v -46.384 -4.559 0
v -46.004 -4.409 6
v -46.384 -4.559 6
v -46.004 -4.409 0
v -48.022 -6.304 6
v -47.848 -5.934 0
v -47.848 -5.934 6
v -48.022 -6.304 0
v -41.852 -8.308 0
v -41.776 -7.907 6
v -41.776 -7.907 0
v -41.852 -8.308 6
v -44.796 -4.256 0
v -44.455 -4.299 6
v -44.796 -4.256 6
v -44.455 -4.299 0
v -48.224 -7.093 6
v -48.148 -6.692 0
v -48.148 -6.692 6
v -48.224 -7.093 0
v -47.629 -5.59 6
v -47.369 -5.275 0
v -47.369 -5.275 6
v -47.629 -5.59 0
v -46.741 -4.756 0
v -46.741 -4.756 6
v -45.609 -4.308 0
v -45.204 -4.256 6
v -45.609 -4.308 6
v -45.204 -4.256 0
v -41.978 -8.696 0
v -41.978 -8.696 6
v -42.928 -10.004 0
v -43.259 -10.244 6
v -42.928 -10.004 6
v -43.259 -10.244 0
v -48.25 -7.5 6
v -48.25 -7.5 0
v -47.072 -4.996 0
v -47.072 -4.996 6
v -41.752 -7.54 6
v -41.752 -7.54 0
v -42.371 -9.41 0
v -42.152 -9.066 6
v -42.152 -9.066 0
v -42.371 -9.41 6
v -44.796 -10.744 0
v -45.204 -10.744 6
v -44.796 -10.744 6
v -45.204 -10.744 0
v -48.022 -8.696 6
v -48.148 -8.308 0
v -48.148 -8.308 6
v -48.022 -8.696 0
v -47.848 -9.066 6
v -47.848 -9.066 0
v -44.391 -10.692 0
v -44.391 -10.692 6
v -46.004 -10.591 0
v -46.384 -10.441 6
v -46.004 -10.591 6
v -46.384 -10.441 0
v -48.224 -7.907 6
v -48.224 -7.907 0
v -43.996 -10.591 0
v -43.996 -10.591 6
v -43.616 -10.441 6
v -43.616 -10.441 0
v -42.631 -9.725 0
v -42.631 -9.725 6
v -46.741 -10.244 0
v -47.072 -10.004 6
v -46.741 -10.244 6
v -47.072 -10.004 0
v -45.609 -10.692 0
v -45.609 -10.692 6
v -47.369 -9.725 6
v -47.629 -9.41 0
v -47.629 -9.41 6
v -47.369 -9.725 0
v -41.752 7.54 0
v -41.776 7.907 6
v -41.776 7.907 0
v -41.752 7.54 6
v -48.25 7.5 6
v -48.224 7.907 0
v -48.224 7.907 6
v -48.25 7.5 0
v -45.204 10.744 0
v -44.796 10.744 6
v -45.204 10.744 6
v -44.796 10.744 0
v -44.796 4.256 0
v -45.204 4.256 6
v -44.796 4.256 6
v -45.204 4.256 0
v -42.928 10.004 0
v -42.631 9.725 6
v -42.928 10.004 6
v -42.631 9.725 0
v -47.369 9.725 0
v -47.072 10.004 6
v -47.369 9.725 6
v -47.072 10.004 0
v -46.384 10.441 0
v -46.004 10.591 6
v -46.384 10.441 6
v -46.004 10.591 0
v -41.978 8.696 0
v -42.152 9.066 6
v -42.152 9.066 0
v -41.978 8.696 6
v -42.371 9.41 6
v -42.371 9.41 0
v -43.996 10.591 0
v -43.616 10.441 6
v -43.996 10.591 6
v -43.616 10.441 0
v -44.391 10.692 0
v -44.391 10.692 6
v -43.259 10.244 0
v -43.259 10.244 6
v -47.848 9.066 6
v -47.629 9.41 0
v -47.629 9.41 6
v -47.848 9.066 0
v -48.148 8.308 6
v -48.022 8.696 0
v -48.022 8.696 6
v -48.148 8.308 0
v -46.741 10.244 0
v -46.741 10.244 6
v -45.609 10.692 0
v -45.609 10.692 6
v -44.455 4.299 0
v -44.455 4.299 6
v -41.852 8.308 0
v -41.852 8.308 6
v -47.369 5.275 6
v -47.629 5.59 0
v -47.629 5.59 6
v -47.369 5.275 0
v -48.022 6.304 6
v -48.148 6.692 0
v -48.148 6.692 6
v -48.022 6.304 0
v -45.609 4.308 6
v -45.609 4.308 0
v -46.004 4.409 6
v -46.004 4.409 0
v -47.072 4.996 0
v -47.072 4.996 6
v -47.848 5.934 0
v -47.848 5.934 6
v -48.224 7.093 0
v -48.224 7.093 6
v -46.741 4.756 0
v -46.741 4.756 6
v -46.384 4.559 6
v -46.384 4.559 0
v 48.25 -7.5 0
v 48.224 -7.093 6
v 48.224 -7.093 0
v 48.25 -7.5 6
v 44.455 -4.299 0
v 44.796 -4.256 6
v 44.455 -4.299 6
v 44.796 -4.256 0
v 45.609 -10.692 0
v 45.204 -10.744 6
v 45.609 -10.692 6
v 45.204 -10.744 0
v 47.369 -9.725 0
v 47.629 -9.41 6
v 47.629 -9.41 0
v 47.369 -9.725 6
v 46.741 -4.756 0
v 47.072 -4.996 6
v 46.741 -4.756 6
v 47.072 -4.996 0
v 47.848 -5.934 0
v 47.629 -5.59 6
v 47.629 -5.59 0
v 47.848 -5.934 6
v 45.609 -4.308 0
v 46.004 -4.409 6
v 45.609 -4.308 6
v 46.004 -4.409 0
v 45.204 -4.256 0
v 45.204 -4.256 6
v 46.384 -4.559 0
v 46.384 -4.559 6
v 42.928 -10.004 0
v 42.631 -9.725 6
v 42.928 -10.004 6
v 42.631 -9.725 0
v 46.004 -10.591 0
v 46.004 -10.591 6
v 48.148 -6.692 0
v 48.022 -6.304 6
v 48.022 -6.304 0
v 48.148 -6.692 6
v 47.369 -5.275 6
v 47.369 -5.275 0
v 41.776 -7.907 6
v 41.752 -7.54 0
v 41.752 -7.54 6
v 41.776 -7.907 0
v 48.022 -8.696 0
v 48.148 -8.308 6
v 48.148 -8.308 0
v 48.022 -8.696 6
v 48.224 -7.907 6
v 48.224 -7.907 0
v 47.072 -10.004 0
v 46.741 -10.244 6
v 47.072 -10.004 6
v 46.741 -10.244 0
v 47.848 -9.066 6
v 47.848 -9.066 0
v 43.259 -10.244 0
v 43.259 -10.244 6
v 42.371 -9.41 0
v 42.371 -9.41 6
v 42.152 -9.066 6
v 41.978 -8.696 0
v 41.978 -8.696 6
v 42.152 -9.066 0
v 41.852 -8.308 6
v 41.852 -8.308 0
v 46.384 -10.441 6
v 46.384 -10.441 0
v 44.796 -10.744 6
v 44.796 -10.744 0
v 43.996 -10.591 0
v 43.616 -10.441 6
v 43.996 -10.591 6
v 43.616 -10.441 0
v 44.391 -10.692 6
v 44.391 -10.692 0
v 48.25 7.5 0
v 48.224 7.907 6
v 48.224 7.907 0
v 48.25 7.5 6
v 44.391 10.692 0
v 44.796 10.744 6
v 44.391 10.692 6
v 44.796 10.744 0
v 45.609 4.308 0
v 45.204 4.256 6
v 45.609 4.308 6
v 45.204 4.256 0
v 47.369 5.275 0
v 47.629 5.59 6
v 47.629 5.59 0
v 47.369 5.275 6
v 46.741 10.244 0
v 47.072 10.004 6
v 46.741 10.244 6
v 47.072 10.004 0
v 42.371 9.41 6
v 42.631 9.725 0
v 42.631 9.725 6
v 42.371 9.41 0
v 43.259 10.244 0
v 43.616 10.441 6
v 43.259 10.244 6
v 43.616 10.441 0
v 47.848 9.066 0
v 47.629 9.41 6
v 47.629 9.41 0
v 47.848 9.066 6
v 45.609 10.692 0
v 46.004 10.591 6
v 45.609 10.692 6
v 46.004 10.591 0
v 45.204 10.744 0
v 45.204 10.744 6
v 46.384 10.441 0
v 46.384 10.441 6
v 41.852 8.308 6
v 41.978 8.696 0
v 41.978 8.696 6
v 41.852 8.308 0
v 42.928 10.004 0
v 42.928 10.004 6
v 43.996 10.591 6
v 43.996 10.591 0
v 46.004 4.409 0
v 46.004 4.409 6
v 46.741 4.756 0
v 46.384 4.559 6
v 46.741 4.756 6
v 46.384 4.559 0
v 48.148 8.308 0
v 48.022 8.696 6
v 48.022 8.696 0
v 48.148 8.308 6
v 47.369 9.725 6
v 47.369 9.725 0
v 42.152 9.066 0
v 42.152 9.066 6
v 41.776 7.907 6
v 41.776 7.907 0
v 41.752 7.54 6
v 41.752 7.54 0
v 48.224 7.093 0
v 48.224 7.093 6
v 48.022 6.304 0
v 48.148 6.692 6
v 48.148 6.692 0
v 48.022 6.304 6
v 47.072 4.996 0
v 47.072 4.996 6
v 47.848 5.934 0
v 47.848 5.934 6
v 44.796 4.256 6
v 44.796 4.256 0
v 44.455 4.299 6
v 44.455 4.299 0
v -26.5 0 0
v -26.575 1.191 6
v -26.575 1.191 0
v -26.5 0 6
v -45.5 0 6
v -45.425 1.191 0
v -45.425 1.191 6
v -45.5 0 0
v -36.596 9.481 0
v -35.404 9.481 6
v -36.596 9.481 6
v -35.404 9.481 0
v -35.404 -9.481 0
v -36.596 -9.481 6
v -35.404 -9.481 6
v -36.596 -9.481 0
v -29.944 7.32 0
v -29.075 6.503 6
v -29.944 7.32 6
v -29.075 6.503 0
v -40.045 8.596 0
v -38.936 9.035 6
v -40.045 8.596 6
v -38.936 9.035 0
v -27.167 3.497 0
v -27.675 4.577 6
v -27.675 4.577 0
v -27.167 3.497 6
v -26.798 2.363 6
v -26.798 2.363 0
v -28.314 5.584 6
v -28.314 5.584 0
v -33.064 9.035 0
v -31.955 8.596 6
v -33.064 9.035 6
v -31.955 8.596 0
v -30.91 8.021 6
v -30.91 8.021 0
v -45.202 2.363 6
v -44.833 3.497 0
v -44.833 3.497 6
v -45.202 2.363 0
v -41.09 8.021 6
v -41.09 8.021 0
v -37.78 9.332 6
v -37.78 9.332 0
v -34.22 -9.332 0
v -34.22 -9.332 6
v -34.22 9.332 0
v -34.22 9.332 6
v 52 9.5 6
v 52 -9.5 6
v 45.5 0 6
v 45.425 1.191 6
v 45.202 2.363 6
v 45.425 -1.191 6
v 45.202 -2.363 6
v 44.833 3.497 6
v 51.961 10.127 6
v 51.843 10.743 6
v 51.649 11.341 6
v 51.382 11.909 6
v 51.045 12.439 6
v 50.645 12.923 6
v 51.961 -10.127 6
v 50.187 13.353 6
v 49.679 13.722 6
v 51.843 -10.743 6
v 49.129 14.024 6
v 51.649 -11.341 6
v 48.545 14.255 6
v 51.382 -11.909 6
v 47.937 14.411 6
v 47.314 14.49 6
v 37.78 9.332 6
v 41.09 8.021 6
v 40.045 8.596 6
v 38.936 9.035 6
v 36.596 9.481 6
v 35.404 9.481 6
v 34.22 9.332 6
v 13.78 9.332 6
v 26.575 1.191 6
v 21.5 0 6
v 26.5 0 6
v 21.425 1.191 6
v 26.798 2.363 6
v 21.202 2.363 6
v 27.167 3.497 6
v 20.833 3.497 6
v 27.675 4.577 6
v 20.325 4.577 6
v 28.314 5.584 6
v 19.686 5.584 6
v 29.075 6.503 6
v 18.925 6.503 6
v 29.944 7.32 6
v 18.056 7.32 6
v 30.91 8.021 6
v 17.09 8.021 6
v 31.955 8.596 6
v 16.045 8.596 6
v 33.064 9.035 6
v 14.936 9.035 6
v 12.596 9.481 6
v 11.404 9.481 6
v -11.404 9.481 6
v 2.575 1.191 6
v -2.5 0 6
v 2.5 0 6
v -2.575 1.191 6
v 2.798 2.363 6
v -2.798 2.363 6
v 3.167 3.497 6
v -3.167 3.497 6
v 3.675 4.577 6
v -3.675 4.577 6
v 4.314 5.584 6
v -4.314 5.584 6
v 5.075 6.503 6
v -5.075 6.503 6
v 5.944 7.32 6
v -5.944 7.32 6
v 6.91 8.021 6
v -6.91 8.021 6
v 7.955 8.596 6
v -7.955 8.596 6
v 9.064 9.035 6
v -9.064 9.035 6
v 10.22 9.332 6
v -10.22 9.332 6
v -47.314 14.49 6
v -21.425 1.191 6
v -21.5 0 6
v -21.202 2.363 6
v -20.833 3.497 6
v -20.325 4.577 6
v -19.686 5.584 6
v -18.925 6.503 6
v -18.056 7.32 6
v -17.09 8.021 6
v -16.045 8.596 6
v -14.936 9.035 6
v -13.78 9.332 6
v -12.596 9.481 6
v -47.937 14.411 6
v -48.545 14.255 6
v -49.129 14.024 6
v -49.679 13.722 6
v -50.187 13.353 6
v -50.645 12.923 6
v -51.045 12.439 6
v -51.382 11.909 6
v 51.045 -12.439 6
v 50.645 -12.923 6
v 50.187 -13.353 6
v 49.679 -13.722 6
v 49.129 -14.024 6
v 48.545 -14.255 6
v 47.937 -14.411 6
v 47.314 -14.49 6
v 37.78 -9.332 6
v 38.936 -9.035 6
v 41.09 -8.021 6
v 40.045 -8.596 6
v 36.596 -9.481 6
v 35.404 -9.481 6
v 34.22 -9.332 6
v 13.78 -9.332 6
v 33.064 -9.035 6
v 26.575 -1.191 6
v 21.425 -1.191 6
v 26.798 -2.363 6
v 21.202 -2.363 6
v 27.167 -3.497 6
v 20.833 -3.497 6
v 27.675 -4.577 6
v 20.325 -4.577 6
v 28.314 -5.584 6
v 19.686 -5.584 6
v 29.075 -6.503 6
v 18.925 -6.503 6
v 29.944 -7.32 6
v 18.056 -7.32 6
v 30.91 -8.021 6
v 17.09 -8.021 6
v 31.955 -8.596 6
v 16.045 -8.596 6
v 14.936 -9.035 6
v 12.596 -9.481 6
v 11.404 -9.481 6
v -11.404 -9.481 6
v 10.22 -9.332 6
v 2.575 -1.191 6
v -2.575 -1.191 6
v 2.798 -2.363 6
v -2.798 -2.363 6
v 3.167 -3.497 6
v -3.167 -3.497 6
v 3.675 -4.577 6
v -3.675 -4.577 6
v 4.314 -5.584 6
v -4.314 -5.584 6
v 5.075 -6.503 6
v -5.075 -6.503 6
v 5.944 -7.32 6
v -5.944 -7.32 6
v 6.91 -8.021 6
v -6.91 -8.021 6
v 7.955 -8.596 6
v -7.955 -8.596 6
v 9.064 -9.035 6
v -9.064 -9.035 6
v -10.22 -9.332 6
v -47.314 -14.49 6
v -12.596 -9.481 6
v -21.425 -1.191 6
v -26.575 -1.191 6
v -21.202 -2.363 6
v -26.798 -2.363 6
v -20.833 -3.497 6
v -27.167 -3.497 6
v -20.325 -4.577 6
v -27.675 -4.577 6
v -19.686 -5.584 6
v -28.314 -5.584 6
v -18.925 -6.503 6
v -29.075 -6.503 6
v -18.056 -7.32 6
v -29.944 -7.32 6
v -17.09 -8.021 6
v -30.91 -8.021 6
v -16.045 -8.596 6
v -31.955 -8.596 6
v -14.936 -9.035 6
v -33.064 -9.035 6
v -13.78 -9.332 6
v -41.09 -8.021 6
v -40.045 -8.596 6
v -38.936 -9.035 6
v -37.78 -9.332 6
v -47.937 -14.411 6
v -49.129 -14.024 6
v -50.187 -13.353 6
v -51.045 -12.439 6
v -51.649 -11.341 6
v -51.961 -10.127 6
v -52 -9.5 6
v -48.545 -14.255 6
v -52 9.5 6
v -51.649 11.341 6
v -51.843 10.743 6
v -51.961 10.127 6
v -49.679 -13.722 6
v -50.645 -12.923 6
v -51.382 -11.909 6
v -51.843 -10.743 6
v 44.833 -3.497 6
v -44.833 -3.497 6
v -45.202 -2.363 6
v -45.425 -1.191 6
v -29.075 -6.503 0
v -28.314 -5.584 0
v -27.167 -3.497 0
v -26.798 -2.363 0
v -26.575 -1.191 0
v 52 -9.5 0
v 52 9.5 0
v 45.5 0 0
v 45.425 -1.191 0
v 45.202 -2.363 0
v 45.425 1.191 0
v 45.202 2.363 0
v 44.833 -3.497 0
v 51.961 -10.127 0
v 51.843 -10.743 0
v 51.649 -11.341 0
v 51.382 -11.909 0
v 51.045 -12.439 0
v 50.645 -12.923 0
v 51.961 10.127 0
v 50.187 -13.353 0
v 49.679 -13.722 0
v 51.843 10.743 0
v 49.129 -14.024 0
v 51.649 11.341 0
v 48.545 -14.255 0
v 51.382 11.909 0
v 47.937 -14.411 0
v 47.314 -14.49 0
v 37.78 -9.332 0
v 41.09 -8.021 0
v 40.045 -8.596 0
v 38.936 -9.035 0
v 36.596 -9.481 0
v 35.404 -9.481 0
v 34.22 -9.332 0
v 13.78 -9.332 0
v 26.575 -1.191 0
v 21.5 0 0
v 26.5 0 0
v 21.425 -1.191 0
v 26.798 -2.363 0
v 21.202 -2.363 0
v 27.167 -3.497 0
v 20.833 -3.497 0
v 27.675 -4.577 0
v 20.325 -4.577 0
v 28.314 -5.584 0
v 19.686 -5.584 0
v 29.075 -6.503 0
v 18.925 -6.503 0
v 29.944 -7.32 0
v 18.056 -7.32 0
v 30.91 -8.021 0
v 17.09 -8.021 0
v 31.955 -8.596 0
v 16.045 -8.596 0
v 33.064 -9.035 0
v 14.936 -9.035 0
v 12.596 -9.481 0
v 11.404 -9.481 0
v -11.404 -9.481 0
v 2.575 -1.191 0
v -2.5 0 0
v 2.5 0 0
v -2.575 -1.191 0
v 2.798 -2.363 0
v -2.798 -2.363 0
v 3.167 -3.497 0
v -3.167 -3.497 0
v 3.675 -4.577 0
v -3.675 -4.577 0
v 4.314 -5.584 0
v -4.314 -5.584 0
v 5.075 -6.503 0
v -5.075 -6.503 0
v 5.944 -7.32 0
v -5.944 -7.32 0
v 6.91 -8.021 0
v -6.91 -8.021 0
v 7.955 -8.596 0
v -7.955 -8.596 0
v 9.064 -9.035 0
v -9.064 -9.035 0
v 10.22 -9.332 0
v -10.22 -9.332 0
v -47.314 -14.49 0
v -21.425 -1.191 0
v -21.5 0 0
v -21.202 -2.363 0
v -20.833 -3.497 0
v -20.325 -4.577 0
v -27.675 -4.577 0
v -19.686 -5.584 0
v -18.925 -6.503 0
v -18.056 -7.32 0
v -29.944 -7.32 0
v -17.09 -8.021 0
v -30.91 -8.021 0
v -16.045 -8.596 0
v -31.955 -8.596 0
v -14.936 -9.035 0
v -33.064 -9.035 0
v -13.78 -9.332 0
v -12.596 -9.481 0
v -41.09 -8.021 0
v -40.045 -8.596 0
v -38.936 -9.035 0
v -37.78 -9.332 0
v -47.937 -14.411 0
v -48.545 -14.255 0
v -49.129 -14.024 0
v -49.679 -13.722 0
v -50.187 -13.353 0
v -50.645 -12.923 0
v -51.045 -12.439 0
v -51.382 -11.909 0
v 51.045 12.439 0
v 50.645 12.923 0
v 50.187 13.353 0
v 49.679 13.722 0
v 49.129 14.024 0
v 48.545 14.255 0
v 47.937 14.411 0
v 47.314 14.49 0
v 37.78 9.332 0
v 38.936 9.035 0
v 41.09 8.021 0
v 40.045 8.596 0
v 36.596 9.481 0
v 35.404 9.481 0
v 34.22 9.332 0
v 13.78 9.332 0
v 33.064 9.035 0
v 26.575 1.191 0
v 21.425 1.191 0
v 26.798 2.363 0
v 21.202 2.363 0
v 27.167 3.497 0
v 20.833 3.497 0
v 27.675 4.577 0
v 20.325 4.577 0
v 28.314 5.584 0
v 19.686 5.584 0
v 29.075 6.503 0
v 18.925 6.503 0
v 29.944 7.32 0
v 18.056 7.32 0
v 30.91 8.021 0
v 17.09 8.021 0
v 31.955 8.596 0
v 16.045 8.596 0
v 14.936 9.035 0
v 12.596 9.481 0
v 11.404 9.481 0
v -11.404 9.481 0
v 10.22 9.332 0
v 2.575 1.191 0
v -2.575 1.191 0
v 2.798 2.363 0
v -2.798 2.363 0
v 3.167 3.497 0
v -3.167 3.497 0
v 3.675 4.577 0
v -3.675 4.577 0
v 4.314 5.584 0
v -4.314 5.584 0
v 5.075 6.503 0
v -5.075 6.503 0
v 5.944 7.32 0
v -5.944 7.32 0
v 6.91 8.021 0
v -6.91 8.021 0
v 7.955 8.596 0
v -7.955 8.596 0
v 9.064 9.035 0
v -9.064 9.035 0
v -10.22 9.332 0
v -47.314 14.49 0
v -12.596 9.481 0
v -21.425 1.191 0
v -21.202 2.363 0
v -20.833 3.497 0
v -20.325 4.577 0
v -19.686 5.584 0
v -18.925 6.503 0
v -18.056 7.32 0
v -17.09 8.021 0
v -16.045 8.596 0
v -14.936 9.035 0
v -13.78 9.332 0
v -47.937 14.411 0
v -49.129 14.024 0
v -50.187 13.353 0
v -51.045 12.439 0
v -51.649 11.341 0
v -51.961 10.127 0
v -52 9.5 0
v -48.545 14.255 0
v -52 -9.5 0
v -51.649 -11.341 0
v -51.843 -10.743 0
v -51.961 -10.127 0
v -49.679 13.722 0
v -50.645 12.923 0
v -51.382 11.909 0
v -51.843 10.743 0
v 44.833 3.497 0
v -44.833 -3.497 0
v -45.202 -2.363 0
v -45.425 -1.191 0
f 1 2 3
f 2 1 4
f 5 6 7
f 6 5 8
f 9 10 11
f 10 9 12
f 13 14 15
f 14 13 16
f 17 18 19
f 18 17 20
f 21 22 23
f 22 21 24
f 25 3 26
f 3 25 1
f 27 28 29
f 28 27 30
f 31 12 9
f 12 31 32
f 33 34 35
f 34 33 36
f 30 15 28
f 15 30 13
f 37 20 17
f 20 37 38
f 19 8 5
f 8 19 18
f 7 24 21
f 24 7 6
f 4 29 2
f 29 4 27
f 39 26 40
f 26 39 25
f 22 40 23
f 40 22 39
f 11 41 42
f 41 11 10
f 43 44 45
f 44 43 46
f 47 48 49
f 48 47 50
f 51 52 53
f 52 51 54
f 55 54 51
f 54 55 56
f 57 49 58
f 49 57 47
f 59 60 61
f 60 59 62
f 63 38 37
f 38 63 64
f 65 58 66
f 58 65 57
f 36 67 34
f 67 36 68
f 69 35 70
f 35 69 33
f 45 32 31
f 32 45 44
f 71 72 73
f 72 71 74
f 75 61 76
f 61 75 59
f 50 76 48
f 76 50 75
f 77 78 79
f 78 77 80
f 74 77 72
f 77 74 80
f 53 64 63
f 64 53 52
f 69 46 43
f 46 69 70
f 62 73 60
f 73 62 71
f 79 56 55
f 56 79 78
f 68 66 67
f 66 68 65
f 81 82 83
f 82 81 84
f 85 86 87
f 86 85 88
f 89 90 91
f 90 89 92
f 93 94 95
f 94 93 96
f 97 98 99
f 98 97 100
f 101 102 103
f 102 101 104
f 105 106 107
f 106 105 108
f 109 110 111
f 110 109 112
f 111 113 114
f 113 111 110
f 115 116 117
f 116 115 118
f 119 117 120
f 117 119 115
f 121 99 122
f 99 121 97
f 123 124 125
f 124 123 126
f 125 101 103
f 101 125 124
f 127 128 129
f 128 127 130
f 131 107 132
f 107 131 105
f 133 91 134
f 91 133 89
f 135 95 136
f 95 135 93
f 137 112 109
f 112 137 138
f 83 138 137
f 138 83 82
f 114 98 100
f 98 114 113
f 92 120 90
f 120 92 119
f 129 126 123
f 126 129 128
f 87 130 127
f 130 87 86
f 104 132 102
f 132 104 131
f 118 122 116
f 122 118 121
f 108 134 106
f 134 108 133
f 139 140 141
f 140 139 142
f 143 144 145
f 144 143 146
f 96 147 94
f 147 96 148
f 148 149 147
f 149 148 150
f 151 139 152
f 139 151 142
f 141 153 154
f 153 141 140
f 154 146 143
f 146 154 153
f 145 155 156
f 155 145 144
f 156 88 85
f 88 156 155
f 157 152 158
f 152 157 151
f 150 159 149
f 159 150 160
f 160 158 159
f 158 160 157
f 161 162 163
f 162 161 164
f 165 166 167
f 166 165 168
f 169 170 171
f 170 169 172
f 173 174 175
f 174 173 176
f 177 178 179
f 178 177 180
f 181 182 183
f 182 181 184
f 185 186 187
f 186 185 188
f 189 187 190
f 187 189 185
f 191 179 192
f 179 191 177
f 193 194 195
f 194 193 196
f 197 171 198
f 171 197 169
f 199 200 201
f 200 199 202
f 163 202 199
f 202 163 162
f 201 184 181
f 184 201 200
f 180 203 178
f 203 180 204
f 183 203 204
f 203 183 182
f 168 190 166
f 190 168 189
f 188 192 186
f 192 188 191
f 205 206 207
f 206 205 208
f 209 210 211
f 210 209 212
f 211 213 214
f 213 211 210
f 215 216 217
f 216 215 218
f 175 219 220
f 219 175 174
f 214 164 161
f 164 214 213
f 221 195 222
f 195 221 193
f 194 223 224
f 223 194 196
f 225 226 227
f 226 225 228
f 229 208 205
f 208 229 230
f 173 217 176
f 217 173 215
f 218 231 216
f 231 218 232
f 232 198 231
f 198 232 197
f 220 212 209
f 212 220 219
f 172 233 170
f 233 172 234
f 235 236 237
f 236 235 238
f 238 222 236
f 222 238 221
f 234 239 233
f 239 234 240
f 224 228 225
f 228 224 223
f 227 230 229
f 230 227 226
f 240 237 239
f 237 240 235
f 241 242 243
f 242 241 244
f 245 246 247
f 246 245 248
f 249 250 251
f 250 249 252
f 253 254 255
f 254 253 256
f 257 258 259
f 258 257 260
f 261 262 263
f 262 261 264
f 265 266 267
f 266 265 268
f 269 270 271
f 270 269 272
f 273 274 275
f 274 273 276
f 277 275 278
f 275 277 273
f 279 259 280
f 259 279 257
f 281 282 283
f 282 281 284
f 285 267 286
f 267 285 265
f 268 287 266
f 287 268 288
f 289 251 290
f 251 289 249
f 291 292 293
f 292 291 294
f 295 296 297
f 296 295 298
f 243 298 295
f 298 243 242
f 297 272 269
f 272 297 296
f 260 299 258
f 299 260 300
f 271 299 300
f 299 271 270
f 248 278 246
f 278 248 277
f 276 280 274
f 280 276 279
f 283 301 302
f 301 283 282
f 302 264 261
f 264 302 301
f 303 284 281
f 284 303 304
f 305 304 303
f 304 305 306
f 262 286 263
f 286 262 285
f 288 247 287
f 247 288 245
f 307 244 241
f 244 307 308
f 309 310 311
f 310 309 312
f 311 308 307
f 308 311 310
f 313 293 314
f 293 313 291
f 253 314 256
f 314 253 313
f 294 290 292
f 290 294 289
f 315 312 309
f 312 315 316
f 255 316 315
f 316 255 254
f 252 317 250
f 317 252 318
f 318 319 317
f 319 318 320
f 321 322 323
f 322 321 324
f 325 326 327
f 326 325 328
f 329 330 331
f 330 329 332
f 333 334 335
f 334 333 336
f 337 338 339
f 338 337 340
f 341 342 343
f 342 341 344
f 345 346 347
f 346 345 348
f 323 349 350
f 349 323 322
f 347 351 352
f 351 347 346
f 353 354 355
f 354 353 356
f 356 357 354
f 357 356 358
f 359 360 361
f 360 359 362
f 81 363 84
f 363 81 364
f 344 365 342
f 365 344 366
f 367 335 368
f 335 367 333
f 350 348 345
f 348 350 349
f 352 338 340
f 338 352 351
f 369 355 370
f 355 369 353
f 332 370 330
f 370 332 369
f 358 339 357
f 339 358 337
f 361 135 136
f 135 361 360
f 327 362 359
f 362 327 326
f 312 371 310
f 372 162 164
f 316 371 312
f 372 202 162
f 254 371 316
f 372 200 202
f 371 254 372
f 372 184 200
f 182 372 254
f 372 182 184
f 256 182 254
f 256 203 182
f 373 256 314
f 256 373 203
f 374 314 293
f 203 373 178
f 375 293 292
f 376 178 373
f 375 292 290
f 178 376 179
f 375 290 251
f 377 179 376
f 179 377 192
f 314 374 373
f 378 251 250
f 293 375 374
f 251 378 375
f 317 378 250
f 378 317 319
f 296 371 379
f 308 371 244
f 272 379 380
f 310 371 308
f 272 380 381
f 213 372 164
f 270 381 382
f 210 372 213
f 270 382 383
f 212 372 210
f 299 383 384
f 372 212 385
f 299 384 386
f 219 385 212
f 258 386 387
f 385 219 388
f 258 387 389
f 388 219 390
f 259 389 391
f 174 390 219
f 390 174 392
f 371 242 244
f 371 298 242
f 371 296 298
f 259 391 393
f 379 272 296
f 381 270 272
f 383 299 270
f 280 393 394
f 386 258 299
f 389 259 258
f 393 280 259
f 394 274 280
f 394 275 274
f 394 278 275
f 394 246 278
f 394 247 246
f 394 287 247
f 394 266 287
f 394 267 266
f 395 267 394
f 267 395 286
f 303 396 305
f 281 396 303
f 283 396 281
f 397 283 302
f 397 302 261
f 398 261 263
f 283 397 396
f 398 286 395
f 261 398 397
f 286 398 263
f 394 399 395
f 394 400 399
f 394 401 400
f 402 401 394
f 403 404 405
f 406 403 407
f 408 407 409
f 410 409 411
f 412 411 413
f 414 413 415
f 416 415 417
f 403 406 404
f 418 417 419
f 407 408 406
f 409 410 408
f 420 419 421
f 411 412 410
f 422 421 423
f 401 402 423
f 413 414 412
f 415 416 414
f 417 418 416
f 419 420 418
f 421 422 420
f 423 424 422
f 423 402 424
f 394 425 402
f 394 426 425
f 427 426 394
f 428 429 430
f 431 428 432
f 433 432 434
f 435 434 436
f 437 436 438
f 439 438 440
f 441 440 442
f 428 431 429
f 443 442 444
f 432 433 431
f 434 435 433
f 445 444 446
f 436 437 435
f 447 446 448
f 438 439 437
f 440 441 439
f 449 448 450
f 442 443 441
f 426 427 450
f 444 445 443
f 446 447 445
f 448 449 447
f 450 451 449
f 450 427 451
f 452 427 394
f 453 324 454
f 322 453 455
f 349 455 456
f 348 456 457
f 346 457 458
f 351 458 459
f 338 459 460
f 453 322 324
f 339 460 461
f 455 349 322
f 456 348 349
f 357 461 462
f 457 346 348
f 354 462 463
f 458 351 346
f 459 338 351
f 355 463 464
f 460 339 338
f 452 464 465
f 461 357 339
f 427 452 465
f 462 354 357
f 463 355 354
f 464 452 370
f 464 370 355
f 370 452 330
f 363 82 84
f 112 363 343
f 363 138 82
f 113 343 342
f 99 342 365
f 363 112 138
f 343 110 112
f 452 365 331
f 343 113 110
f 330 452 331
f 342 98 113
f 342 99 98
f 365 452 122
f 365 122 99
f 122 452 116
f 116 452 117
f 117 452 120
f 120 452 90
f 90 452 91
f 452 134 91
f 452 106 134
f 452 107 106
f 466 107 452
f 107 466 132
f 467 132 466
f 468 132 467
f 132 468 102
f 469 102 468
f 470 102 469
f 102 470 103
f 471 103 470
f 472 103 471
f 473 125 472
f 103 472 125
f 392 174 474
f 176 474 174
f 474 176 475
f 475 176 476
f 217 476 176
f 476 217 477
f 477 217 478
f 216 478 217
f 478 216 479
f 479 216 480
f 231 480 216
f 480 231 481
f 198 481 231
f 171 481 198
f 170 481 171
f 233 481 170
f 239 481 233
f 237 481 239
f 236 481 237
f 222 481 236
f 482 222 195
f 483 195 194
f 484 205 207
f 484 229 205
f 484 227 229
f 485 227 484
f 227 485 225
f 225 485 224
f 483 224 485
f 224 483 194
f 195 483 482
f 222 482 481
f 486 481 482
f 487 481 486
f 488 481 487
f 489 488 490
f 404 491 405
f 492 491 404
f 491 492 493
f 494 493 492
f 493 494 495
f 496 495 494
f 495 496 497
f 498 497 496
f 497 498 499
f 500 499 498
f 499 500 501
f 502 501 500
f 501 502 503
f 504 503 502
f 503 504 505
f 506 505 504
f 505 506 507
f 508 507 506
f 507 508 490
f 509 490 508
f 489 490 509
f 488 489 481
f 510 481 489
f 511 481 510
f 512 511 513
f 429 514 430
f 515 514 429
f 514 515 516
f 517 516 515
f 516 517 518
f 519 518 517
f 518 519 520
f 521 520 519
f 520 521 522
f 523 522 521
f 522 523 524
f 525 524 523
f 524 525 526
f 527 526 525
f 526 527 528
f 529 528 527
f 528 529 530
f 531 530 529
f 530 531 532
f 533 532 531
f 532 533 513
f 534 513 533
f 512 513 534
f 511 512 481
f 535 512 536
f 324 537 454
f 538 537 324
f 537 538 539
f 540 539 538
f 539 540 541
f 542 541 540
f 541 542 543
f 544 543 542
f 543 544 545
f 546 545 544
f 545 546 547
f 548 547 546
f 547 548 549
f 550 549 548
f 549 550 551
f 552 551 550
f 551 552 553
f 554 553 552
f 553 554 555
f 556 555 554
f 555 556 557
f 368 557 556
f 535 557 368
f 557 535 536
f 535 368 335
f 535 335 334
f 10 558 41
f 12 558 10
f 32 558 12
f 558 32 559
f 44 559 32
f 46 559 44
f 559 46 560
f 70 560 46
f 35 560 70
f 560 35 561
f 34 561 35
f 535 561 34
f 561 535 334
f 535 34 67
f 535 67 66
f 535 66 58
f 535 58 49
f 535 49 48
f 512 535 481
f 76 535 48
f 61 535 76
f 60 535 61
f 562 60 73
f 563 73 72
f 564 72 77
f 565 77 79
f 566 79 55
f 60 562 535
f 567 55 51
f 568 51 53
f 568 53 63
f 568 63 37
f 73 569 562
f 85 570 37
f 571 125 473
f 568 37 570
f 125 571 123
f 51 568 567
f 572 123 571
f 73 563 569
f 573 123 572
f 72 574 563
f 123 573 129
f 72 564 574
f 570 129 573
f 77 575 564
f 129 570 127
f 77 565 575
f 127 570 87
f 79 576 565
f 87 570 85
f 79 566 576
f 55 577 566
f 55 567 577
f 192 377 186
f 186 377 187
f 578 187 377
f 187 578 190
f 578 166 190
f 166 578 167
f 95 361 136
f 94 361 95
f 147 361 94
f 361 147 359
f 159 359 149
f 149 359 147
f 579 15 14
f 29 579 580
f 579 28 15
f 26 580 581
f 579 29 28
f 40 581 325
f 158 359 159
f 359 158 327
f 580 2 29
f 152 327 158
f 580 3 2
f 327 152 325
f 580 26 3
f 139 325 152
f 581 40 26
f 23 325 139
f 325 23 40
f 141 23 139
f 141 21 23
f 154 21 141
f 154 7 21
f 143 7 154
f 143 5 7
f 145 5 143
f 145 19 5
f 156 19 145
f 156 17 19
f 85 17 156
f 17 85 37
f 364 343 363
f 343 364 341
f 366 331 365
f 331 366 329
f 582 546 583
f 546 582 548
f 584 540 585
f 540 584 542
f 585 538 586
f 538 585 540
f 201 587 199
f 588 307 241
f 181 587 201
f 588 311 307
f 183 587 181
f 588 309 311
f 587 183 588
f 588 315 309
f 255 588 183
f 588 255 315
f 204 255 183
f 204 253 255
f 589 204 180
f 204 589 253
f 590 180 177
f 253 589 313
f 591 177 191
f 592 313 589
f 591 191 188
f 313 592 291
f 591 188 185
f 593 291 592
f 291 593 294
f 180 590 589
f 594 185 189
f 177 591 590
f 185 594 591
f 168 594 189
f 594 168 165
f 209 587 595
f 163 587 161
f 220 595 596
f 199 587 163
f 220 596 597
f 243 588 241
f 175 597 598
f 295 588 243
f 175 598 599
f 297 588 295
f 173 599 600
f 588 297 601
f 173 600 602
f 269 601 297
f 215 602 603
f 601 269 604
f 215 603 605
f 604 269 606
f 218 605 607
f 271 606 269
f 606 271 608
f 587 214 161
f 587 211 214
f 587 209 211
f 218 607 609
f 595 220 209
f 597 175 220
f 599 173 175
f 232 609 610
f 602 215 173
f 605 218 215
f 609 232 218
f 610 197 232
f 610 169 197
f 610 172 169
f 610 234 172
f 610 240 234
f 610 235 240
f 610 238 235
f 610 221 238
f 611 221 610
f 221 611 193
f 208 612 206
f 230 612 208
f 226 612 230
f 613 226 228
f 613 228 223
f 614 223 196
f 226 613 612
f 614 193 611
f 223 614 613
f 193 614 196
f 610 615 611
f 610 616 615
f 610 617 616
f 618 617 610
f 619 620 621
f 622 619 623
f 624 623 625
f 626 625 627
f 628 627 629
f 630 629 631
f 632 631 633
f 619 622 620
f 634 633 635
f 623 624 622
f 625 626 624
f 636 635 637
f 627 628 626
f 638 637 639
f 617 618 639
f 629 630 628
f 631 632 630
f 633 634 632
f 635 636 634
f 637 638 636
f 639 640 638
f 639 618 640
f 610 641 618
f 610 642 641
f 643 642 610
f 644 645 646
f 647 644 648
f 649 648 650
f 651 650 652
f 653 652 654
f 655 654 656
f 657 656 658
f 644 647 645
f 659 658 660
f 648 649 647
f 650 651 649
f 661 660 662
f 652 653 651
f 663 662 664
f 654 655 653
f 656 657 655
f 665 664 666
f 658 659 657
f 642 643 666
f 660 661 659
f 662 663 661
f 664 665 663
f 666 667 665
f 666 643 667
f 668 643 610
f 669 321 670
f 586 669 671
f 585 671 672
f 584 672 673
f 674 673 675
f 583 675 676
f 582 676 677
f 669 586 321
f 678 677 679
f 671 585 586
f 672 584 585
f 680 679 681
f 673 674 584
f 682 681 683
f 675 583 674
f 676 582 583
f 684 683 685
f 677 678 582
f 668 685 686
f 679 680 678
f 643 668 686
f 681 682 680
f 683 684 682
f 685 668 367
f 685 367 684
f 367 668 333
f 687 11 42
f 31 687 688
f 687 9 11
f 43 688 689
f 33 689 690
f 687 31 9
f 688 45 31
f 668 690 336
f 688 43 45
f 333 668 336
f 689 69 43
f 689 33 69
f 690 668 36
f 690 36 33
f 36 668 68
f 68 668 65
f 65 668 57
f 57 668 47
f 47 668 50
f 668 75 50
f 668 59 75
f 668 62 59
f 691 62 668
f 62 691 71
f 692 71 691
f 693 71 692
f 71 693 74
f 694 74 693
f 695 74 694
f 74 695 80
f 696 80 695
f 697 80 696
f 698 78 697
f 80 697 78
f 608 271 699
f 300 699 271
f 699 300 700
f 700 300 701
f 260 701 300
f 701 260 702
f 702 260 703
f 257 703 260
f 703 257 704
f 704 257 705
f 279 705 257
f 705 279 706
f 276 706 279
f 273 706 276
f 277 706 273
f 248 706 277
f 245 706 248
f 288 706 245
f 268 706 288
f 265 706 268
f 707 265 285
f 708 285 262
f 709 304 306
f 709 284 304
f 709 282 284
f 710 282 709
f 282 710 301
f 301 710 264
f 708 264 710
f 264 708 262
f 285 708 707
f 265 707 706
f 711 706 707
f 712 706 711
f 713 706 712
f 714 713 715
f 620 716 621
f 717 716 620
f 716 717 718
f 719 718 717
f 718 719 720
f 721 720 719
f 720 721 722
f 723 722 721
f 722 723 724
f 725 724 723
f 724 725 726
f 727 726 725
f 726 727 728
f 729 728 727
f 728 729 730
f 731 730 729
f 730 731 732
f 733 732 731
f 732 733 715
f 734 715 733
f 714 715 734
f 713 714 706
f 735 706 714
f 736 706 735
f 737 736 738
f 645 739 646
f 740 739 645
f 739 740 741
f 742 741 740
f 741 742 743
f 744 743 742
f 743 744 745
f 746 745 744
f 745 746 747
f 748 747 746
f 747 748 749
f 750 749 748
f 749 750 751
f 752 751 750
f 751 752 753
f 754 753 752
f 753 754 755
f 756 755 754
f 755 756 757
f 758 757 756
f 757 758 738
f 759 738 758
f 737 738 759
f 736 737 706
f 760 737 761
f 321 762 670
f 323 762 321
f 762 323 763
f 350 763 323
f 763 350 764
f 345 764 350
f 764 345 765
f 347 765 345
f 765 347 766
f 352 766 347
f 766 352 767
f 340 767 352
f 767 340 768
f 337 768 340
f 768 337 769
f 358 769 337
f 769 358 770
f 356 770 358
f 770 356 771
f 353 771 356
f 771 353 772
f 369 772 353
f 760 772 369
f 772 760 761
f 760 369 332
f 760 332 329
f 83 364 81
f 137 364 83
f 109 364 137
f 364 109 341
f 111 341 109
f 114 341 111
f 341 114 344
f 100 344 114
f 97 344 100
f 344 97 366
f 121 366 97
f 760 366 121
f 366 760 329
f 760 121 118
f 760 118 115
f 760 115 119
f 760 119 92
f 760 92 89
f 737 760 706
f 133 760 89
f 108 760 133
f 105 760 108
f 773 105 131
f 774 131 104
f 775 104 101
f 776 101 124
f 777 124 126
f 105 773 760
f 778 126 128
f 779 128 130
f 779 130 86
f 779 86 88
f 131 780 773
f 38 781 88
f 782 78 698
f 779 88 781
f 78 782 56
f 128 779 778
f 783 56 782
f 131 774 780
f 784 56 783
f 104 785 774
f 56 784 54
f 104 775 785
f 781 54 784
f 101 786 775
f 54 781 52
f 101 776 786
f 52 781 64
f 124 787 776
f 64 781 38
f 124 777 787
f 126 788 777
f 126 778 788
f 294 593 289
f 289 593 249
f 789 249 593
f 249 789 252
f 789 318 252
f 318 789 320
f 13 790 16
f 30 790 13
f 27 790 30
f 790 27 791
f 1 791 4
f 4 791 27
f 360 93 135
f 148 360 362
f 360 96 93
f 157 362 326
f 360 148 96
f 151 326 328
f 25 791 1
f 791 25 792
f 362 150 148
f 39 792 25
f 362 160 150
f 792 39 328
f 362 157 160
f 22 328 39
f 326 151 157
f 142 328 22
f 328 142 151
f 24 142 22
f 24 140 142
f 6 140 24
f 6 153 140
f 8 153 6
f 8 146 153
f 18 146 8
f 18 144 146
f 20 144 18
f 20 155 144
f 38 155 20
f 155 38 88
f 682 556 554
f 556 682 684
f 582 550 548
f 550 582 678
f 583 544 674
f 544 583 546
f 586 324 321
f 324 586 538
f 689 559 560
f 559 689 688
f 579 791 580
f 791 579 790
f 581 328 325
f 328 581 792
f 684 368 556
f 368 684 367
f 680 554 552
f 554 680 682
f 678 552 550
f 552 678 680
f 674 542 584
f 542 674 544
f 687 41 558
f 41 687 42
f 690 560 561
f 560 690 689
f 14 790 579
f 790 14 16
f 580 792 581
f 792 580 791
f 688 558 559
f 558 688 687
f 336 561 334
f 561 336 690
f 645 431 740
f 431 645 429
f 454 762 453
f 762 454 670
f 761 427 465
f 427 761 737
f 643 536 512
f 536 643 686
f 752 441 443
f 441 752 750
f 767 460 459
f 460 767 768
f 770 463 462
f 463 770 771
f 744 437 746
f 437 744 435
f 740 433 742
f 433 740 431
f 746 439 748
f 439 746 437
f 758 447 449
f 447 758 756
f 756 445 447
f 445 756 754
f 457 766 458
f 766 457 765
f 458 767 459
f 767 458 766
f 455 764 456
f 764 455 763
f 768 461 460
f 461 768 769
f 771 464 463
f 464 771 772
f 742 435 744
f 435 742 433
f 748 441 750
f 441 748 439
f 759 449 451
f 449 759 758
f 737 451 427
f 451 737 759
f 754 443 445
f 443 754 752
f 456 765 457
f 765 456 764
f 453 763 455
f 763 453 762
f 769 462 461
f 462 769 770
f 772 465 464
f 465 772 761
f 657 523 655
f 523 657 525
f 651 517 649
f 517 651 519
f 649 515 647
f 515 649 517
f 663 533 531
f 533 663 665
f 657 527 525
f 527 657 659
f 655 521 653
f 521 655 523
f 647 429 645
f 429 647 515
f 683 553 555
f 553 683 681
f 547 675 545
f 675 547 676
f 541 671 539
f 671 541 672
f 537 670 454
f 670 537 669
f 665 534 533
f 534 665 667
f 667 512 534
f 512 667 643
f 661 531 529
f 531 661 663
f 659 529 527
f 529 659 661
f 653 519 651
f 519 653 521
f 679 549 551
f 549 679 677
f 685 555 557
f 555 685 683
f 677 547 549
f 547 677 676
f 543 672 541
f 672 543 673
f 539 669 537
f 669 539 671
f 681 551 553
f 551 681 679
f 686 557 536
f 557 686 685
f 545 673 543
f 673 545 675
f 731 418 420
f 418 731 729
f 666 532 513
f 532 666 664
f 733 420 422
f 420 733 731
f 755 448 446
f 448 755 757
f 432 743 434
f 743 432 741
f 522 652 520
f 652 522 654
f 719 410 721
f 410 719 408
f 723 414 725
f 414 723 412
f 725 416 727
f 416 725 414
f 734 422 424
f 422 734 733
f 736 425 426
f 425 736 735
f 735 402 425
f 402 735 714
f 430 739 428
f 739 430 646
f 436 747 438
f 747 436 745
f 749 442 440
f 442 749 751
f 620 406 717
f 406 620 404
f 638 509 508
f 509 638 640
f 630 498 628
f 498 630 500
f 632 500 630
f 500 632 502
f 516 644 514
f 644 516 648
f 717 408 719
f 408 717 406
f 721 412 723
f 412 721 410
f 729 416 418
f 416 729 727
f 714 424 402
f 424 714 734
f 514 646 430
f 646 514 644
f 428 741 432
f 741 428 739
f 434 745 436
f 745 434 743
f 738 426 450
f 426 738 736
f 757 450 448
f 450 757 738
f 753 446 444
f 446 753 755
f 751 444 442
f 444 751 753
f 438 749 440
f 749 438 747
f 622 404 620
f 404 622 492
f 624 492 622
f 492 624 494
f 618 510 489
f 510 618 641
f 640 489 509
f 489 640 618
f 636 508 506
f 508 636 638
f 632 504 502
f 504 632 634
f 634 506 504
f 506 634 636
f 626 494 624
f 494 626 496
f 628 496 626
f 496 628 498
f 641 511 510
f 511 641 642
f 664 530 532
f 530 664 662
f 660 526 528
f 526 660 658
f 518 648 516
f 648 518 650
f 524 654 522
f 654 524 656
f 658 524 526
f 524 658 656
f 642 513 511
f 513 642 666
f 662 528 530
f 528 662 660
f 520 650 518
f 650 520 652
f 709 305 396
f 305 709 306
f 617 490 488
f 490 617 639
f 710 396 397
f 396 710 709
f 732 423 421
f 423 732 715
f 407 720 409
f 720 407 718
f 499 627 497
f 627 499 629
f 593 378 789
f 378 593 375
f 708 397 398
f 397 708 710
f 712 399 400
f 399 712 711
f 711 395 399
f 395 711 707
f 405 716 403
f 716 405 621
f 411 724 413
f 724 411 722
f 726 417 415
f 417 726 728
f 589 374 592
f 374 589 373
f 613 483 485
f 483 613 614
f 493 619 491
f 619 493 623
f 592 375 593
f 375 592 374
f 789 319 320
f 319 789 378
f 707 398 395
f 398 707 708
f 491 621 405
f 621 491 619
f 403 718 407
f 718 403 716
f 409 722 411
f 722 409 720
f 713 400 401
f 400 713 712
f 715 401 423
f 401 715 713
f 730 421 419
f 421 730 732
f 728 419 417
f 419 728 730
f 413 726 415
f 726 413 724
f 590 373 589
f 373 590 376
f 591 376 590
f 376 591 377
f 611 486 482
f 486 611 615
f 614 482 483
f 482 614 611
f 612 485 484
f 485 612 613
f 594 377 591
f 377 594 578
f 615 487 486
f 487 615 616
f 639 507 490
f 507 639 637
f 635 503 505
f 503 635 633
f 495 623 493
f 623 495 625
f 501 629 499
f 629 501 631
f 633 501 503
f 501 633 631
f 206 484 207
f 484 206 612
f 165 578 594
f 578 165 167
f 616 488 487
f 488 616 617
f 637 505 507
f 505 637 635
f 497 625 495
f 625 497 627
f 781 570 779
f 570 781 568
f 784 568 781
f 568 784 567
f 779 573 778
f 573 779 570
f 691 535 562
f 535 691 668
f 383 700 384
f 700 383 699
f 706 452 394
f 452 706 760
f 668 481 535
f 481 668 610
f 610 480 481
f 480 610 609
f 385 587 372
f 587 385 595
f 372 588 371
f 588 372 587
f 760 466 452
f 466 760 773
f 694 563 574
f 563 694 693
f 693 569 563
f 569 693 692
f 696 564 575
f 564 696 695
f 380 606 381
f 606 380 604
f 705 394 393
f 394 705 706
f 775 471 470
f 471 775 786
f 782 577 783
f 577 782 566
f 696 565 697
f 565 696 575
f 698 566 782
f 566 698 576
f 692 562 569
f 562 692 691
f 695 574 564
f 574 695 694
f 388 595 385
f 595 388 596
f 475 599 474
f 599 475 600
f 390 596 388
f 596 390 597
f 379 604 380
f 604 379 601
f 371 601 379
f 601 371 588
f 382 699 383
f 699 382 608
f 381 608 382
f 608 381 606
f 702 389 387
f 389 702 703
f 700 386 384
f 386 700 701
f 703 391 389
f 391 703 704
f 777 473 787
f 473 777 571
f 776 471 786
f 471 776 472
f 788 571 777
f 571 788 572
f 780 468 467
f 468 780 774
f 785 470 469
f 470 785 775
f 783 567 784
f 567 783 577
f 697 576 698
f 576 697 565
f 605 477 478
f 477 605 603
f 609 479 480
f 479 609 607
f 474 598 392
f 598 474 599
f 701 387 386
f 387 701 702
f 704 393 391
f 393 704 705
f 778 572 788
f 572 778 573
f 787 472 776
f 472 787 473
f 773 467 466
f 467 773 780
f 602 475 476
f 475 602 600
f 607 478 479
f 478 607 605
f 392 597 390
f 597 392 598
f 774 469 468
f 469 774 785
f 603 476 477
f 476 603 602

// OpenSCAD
$fn = 50;


difference() {
	union() {
		hull() {
			translate(v = [-47.0000000000, 9.5000000000, 0]) {
				cylinder(h = 6, r = 5);
			}
			translate(v = [47.0000000000, 9.5000000000, 0]) {
				cylinder(h = 6, r = 5);
			}
			translate(v = [-47.0000000000, -9.5000000000, 0]) {
				cylinder(h = 6, r = 5);
			}
			translate(v = [47.0000000000, -9.5000000000, 0]) {
				cylinder(h = 6, r = 5);
			}
		}
	}
	union() {
		#translate(v = [-45.0000000000, -7.5000000000, -100.0000000000]) {
			cylinder(h = 200, r = 3.2500000000);
		}
		#translate(v = [-45.0000000000, 7.5000000000, -100.0000000000]) {
			cylinder(h = 200, r = 3.2500000000);
		}
		#translate(v = [45.0000000000, -7.5000000000, -100.0000000000]) {
			cylinder(h = 200, r = 3.2500000000);
		}
		#translate(v = [45.0000000000, 7.5000000000, -100.0000000000]) {
			cylinder(h = 200, r = 3.2500000000);
		}
		#translate(v = [-36.0000000000, 0, 0]) {
			cylinder(h = 6, r = 9.5000000000);
		}
		#translate(v = [-12.0000000000, 0, 0]) {
			cylinder(h = 6, r = 9.5000000000);
		}
		#translate(v = [12.0000000000, 0, 0]) {
			cylinder(h = 6, r = 9.5000000000);
		}
		#translate(v = [36.0000000000, 0, 0]) {
			cylinder(h = 6, r = 9.5000000000);
		}
	}
}
